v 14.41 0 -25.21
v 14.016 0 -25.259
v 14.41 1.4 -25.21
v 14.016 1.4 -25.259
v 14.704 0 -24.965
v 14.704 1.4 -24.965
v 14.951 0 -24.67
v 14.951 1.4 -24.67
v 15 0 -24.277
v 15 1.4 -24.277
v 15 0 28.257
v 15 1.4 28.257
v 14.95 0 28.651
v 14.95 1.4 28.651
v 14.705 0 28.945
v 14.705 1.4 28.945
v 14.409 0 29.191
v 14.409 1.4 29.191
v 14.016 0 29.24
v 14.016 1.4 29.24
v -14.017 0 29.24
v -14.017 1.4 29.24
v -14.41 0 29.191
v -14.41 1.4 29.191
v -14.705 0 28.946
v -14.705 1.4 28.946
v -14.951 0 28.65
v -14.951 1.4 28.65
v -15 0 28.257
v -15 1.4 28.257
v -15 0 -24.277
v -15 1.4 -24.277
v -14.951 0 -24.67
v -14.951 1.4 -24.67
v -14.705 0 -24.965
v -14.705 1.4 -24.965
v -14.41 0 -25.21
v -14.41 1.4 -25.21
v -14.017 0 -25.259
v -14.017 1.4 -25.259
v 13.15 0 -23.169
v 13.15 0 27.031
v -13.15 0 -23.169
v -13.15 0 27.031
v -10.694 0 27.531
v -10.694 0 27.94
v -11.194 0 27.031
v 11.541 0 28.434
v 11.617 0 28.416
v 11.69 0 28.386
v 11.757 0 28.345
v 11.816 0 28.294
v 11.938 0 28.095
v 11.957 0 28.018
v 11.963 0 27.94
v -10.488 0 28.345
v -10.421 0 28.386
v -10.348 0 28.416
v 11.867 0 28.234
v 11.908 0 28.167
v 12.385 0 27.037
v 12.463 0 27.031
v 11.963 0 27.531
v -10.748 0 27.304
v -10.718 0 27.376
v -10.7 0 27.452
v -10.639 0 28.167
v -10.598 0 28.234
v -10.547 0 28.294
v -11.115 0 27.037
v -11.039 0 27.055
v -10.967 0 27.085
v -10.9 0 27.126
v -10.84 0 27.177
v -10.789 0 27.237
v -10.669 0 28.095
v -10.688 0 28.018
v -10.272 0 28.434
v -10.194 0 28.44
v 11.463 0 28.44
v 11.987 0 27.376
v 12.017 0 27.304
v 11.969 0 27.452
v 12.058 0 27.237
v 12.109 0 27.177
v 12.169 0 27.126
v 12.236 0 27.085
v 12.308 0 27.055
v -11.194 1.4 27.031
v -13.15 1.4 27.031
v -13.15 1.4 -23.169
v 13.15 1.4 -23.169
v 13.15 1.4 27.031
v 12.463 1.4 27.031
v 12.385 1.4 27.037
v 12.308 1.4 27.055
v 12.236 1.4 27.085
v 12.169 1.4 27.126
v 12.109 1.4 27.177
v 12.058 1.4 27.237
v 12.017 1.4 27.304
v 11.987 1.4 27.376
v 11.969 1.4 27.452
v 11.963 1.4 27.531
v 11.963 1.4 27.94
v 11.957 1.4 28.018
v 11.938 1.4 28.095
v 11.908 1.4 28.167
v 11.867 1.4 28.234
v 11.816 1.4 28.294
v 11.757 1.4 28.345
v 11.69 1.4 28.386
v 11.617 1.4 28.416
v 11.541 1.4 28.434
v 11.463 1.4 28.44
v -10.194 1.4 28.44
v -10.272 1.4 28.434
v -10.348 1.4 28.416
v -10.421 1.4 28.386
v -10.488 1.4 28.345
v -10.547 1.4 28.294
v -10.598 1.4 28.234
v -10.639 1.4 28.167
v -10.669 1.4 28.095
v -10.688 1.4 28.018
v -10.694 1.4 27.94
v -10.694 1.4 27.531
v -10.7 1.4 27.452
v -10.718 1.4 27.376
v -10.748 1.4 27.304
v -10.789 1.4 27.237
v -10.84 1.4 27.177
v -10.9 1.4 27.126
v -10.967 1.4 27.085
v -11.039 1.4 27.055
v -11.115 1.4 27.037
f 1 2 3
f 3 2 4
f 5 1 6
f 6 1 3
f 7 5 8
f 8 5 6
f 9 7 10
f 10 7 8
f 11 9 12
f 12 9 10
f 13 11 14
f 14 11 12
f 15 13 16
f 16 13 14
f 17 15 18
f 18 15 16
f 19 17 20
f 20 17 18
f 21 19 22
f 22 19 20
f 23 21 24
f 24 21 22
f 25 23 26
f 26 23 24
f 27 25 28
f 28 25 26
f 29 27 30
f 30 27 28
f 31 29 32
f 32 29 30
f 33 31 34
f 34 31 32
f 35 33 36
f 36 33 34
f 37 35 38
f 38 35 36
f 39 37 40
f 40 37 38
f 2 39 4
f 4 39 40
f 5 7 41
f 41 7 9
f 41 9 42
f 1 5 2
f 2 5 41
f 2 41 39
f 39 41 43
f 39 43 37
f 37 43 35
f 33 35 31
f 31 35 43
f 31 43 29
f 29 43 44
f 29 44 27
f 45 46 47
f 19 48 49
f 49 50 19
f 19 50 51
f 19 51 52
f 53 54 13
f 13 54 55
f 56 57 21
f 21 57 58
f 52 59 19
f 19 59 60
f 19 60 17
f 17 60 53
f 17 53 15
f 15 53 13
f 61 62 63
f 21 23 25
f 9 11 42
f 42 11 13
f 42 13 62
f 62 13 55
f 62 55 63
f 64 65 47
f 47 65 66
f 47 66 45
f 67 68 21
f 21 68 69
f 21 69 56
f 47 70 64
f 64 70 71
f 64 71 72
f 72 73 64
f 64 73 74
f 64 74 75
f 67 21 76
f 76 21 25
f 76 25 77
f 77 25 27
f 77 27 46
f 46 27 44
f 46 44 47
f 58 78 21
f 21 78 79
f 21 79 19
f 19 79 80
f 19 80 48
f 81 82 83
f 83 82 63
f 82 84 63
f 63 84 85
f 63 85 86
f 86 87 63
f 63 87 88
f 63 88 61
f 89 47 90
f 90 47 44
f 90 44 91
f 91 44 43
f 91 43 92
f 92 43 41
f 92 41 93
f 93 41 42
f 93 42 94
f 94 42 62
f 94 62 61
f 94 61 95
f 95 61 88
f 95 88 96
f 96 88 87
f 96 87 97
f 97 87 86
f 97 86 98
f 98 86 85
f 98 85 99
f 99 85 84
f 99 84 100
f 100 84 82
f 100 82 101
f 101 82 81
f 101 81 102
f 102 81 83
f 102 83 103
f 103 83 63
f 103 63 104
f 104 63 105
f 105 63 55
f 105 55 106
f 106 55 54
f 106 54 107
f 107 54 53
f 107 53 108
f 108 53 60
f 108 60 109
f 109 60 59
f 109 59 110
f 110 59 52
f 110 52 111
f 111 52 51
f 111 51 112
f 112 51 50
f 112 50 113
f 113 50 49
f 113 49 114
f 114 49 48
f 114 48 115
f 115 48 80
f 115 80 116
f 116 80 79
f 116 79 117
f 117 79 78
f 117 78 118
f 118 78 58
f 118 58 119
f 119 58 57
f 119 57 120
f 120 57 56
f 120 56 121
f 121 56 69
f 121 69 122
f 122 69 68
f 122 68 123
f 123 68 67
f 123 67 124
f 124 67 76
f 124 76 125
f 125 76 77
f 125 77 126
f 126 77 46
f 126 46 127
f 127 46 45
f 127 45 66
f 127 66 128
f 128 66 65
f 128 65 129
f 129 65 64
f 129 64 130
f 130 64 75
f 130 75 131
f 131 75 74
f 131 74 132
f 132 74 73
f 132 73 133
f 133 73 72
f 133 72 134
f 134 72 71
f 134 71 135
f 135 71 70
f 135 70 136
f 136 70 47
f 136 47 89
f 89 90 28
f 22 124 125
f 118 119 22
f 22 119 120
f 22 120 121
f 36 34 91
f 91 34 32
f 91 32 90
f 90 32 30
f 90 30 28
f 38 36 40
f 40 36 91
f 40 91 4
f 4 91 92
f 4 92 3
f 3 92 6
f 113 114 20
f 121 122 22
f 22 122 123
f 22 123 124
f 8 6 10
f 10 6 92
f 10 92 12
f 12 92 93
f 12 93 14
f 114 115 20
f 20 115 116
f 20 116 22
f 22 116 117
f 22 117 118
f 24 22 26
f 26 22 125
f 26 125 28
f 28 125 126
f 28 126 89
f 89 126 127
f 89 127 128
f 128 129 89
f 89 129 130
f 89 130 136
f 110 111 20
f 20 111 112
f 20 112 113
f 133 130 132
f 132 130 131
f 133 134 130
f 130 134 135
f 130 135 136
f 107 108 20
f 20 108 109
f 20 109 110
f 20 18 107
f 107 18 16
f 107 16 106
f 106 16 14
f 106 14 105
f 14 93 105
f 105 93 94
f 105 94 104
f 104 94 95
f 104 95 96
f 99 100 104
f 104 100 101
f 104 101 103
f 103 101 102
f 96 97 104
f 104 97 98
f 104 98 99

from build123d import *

# Parameters (mm, degrees)
AUFSATZ_LINEAR_AUSTRAGEN1_DEPTH = 1.4


with BuildPart() as part:
    # Skizze1 → Aufsatz-Linear austragen1 (new body)
    with BuildSketch(Plane(origin=(0, 0, 0), x_dir=(1, 0, 0), z_dir=(0, 1, 0))):
        Polygon((14.409630658, 25.21028647), (14.016111454, 25.259411872), (-14.016755293, 25.259390001), (-14.409855506, 25.210248977), (-14.705374814, 24.96453136), (-14.950840446, 24.669672719), (-15.000118678, 24.276547653), (-15.000218735, -28.257278341), (-14.95104056, -28.650375287), (-14.705137178, -28.945646353), (-14.410055621, -29.190951545), (-14.016949154, -29.240173804), (14.015942607, -29.240255039), (14.409480572, -29.191114015), (14.704562129, -28.945396398), (14.950465511, -28.650537758), (14.999712475, -28.257315834), (14.999781265, 24.276613266), (14.95060309, 24.669716461), (14.704274464, 24.964575102), align=None)
        with BuildLine():
            Line((11.462718603, -28.440255039), (-10.193671543, -28.440255039))
            ThreePointArc((-10.193671543, -28.440255039), (-10.547224933, -28.29380843), (-10.693671543, -27.940255039))
            Line((-10.693671543, -27.940255039), (-10.693671543, -27.530609999))
            ThreePointArc((-10.693671543, -27.530609999), (-10.840118152, -27.177056609), (-11.193671543, -27.030609999))
            Line((-11.193671543, -27.030609999), (-13.15, -27.030609999))
            Line((-13.15, -27.030609999), (-13.15, 23.169390001))
            Line((-13.15, 23.169390001), (13.15, 23.169390001))
            Line((13.15, 23.169390001), (13.15, -27.030609999))
            Line((13.15, -27.030609999), (12.462718603, -27.030609999))
            ThreePointArc((12.462718603, -27.030609999), (12.109165213, -27.177056609), (11.962718603, -27.530609999))
            Line((11.962718603, -27.530609999), (11.962718603, -27.940255039))
            ThreePointArc((11.962718603, -27.940255039), (11.816271994, -28.29380843), (11.462718603, -28.440255039))
        make_face(mode=Mode.SUBTRACT)
    extrude(amount=AUFSATZ_LINEAR_AUSTRAGEN1_DEPTH)


solid = part.part
